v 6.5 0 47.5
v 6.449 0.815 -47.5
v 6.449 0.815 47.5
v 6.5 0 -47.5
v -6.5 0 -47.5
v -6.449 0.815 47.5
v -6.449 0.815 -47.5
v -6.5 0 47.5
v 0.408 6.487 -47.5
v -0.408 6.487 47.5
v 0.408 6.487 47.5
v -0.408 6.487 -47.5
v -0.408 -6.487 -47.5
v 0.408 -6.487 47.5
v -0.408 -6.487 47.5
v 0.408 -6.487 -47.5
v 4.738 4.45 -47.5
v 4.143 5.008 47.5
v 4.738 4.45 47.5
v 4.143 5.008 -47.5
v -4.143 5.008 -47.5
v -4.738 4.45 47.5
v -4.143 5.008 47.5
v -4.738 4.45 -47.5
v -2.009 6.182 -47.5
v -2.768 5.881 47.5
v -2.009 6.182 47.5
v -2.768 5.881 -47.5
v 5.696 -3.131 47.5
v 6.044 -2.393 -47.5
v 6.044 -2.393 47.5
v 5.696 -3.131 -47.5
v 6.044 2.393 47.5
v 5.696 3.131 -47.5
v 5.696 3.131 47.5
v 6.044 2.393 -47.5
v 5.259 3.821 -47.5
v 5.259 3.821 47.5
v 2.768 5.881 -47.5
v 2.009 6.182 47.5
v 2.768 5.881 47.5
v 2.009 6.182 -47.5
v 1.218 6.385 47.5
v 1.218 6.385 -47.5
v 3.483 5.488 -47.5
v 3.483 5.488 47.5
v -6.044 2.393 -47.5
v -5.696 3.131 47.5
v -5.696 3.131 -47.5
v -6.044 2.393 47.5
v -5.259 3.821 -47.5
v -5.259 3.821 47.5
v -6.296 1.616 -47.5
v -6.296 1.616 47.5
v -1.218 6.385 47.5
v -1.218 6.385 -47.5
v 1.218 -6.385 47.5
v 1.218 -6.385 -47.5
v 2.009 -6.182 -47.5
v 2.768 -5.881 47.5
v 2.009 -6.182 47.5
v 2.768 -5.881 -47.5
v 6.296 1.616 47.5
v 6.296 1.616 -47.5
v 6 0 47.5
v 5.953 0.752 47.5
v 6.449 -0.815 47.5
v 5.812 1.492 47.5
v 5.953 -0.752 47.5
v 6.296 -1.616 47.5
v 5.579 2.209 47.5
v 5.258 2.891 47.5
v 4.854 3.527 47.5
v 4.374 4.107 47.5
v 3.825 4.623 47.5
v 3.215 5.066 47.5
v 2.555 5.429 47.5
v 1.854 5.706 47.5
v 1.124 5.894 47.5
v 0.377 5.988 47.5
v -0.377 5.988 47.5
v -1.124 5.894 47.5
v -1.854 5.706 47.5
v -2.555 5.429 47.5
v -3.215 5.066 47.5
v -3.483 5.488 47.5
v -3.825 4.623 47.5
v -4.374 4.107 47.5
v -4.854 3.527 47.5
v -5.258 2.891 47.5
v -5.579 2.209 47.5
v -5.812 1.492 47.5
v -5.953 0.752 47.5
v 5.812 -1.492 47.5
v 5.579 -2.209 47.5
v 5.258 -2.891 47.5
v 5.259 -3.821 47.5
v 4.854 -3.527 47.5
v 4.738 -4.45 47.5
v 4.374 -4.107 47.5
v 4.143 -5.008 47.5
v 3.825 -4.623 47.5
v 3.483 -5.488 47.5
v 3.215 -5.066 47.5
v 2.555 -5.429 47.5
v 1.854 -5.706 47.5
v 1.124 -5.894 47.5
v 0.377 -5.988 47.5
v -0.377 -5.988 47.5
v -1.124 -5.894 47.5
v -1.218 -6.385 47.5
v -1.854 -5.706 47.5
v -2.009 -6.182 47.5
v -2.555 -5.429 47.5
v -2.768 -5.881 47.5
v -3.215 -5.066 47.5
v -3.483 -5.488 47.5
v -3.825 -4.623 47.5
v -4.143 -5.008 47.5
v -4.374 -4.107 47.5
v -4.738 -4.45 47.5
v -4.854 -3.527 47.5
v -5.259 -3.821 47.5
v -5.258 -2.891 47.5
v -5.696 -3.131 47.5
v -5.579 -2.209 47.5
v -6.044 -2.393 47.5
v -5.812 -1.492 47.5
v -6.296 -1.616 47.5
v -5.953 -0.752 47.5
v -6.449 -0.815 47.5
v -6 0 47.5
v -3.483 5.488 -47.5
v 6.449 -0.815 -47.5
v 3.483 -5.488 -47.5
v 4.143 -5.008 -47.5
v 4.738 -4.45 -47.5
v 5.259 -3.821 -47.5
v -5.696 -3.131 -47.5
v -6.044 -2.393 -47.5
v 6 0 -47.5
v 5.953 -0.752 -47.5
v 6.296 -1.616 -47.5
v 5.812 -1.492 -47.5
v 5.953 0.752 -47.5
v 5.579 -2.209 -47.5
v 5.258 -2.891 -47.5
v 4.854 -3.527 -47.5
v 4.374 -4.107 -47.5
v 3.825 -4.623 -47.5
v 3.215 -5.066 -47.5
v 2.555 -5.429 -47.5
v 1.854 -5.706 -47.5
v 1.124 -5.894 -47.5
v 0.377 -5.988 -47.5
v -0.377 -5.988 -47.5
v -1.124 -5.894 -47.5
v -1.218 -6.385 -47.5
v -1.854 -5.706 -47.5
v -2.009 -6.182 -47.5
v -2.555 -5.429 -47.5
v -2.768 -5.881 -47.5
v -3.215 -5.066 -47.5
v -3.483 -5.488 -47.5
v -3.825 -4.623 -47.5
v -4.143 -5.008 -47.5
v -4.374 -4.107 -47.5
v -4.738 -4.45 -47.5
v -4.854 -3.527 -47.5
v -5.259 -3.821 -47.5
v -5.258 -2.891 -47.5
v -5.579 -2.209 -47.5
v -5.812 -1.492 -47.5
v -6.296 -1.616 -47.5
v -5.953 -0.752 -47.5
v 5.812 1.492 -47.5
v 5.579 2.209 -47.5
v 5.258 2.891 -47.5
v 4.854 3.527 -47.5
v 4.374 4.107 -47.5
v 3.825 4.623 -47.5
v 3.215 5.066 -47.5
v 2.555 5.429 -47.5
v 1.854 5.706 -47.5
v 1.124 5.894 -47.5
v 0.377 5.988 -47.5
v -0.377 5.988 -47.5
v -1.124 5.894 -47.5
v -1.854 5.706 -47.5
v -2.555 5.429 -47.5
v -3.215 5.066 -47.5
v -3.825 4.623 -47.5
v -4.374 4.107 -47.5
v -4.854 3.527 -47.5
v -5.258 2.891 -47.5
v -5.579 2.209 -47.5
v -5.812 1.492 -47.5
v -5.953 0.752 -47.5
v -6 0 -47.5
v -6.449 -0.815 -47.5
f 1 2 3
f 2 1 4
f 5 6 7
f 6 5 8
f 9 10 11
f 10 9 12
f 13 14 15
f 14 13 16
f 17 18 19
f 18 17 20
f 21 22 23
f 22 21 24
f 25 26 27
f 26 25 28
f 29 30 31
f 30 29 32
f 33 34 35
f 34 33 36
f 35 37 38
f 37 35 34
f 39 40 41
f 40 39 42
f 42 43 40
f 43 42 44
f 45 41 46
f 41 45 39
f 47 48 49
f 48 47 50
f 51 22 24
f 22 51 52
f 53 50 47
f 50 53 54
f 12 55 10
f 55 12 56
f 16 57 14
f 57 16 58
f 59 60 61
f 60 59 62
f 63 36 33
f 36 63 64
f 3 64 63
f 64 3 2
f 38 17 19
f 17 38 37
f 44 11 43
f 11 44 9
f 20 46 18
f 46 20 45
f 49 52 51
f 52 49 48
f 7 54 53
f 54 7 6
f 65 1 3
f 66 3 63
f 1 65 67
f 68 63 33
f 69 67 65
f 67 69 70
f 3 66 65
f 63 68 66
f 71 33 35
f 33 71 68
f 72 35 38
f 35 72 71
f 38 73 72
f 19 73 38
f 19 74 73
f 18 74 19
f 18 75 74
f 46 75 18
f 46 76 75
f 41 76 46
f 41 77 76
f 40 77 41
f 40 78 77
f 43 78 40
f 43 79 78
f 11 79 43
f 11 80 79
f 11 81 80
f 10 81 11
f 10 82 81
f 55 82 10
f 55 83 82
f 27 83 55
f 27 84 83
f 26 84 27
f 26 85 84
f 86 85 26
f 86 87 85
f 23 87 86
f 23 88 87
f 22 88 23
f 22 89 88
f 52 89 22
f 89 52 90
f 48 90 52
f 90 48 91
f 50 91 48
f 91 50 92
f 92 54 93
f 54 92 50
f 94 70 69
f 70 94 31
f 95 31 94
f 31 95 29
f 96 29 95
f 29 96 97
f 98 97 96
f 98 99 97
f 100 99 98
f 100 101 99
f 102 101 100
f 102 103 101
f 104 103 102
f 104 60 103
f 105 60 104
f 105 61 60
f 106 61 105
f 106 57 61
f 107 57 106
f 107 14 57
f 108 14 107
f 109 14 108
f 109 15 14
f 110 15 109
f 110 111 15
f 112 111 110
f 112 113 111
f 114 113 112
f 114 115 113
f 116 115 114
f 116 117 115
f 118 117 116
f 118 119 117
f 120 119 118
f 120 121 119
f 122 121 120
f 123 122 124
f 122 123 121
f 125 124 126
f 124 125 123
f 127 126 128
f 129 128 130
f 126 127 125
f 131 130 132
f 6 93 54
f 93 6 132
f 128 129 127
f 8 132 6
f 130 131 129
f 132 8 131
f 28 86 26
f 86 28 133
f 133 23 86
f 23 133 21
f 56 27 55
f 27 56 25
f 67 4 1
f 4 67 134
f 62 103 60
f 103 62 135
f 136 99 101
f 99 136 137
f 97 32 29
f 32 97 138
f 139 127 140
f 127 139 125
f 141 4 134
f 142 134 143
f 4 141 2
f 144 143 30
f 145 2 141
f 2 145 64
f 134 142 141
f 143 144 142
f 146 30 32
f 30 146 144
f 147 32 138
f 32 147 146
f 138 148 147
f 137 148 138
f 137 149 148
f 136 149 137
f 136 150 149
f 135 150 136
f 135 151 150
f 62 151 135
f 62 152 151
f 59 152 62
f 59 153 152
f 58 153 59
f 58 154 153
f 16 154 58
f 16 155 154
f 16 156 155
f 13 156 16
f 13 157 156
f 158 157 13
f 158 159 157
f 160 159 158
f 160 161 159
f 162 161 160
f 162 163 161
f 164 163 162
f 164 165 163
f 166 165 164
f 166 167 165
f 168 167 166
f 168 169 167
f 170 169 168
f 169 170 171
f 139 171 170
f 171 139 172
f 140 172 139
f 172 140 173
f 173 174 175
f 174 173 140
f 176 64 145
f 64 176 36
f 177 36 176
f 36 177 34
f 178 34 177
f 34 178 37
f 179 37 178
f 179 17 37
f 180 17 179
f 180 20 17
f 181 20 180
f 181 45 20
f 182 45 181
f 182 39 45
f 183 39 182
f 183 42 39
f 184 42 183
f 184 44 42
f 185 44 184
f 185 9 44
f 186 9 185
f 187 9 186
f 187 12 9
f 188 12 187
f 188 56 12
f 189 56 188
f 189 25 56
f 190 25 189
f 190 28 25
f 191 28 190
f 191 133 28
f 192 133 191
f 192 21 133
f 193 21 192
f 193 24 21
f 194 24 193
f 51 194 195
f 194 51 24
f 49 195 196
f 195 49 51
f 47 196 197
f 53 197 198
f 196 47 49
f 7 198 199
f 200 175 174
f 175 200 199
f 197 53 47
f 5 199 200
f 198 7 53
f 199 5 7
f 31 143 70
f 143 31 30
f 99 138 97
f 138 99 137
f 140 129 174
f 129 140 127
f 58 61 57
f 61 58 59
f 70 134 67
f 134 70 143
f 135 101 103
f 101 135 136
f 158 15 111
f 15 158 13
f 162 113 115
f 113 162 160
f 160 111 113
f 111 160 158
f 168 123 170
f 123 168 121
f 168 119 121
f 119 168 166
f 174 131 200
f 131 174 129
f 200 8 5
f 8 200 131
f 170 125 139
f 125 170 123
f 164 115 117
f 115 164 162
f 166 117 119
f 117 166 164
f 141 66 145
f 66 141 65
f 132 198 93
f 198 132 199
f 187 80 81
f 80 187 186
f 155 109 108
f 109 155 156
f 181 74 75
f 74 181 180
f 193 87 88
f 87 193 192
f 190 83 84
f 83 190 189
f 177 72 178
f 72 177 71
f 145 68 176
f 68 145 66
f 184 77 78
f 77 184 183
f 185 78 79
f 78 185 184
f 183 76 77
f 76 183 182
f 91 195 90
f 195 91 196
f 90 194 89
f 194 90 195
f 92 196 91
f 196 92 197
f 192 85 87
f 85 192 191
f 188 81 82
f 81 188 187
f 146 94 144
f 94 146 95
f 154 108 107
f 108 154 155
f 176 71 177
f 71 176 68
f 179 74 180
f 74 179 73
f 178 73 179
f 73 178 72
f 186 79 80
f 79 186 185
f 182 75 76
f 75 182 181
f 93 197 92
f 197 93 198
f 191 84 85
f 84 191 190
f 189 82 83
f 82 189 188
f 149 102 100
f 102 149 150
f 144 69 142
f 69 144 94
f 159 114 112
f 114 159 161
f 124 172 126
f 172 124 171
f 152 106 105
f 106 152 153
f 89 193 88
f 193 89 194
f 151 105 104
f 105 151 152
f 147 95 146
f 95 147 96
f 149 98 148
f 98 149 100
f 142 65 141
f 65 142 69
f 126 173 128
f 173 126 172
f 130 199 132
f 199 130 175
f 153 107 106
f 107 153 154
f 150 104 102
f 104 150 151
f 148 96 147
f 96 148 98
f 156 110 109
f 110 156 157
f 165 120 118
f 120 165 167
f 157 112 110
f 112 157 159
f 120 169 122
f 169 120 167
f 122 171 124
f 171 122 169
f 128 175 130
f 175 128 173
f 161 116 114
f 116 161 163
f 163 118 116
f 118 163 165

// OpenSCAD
$fn = 50;


difference() {
	union() {
		translate(v = [0, 0, -47.5000000000]) {
			cylinder(h = 95, r = 6.5000000000);
		}
	}
	union() {
		translate(v = [0, 0, -100.0000000000]) {
			cylinder(h = 200, r = 6);
		}
	}
}
